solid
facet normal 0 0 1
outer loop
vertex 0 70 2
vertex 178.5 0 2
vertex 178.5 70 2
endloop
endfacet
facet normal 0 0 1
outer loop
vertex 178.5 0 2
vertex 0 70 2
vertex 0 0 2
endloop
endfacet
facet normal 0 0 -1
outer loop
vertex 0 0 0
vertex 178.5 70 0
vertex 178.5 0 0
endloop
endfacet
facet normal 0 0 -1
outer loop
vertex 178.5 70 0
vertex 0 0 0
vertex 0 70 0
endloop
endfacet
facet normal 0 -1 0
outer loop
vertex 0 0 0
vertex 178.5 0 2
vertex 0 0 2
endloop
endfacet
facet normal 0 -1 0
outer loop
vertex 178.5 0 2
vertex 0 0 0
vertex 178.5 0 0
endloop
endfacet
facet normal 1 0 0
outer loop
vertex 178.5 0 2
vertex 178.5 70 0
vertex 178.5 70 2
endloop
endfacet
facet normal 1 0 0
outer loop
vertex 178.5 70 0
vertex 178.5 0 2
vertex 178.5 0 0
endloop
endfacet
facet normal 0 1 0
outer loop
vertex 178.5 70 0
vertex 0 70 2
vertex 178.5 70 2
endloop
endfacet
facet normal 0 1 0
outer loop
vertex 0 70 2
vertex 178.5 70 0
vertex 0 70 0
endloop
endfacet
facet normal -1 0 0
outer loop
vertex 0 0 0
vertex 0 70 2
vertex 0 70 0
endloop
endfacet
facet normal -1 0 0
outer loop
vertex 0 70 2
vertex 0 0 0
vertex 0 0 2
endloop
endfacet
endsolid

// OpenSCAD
echo(version=version());

$wall_thickness = 2;
$fn = 50;
inner_wall_length = 178.5;
box_height = 70;

cube([inner_wall_length, box_height, $wall_thickness]);
